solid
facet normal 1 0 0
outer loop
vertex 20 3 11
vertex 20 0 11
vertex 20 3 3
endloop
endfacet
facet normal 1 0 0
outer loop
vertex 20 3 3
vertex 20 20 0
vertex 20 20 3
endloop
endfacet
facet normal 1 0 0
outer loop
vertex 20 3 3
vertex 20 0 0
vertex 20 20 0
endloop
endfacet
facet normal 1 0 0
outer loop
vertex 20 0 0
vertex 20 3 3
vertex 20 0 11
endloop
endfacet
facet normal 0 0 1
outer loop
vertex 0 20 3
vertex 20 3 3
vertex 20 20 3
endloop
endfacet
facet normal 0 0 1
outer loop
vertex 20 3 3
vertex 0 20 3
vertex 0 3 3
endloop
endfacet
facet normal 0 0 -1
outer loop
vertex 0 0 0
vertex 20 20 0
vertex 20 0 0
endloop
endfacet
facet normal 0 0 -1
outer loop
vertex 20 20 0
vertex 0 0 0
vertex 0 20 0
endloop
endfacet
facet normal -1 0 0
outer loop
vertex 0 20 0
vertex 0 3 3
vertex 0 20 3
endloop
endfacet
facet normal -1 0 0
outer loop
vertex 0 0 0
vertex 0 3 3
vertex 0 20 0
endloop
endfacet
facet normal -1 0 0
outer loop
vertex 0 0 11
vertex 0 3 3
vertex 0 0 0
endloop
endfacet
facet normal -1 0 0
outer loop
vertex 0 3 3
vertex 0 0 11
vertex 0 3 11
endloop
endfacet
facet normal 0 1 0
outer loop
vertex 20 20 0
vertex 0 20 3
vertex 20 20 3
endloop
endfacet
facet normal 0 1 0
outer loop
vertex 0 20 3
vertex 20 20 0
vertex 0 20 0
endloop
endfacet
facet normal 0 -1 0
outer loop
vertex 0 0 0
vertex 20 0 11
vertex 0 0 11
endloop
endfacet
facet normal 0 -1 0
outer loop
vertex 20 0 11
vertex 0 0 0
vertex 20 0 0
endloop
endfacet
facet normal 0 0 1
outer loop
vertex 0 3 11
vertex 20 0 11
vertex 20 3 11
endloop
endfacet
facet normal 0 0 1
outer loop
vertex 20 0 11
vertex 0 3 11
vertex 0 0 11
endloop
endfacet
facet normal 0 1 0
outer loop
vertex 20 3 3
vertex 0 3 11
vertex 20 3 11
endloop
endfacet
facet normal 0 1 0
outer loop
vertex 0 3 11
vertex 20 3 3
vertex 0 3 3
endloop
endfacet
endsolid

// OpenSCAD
MAIN_WD = 20;
MAIN_HT = 20;
GEN_TN = 3;
RIDGE_HT = 8;

cube([MAIN_WD, MAIN_HT, GEN_TN]);
cube([MAIN_WD, GEN_TN, RIDGE_HT + GEN_TN]);
